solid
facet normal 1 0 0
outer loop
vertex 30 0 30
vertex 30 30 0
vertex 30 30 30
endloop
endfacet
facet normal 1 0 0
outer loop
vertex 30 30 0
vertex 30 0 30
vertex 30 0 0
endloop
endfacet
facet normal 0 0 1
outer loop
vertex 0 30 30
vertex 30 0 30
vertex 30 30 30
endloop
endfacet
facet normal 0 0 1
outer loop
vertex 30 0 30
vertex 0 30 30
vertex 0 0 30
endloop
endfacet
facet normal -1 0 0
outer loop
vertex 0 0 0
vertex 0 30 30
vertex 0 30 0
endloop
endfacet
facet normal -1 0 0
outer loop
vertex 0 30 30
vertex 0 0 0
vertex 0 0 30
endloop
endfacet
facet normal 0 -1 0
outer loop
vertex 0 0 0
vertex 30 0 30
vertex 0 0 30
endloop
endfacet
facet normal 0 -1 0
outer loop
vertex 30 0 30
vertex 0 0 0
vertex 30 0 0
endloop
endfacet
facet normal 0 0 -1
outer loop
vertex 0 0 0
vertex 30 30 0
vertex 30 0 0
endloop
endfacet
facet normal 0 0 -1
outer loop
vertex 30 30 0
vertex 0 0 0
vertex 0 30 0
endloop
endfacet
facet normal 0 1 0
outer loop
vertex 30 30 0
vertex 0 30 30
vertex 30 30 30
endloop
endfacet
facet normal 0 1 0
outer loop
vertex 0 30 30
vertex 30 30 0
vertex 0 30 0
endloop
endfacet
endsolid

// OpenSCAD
// Parameters for the step block
block_width = 30;  // Width of the block
block_depth = 30;  // Depth of the block
block_height = 30; // Total height of the block

step_depth = 10;   // Depth of each step
step_height = 10;  // Height of each step

// Function to create the step block
module step_block() {
    // Base block
    cube([block_width, block_depth, block_height]);

    // Subtract steps
    difference() {
        // Full block
        cube([block_width, block_depth, block_height]);

        // Step 1
        translate([0, block_depth - step_depth, block_height - step_height])
            cube([block_width, step_depth, step_height]);

        // Step 2
        translate([0, block_depth - 2 * step_depth, block_height - 2 * step_height])
            cube([block_width, 2 * step_depth, step_height]);

        // Step 3
        translate([0, block_depth - 3 * step_depth, block_height - 3 * step_height])
            cube([block_width, 3 * step_depth, step_height]);
    }
}

// Render the step block
step_block();
